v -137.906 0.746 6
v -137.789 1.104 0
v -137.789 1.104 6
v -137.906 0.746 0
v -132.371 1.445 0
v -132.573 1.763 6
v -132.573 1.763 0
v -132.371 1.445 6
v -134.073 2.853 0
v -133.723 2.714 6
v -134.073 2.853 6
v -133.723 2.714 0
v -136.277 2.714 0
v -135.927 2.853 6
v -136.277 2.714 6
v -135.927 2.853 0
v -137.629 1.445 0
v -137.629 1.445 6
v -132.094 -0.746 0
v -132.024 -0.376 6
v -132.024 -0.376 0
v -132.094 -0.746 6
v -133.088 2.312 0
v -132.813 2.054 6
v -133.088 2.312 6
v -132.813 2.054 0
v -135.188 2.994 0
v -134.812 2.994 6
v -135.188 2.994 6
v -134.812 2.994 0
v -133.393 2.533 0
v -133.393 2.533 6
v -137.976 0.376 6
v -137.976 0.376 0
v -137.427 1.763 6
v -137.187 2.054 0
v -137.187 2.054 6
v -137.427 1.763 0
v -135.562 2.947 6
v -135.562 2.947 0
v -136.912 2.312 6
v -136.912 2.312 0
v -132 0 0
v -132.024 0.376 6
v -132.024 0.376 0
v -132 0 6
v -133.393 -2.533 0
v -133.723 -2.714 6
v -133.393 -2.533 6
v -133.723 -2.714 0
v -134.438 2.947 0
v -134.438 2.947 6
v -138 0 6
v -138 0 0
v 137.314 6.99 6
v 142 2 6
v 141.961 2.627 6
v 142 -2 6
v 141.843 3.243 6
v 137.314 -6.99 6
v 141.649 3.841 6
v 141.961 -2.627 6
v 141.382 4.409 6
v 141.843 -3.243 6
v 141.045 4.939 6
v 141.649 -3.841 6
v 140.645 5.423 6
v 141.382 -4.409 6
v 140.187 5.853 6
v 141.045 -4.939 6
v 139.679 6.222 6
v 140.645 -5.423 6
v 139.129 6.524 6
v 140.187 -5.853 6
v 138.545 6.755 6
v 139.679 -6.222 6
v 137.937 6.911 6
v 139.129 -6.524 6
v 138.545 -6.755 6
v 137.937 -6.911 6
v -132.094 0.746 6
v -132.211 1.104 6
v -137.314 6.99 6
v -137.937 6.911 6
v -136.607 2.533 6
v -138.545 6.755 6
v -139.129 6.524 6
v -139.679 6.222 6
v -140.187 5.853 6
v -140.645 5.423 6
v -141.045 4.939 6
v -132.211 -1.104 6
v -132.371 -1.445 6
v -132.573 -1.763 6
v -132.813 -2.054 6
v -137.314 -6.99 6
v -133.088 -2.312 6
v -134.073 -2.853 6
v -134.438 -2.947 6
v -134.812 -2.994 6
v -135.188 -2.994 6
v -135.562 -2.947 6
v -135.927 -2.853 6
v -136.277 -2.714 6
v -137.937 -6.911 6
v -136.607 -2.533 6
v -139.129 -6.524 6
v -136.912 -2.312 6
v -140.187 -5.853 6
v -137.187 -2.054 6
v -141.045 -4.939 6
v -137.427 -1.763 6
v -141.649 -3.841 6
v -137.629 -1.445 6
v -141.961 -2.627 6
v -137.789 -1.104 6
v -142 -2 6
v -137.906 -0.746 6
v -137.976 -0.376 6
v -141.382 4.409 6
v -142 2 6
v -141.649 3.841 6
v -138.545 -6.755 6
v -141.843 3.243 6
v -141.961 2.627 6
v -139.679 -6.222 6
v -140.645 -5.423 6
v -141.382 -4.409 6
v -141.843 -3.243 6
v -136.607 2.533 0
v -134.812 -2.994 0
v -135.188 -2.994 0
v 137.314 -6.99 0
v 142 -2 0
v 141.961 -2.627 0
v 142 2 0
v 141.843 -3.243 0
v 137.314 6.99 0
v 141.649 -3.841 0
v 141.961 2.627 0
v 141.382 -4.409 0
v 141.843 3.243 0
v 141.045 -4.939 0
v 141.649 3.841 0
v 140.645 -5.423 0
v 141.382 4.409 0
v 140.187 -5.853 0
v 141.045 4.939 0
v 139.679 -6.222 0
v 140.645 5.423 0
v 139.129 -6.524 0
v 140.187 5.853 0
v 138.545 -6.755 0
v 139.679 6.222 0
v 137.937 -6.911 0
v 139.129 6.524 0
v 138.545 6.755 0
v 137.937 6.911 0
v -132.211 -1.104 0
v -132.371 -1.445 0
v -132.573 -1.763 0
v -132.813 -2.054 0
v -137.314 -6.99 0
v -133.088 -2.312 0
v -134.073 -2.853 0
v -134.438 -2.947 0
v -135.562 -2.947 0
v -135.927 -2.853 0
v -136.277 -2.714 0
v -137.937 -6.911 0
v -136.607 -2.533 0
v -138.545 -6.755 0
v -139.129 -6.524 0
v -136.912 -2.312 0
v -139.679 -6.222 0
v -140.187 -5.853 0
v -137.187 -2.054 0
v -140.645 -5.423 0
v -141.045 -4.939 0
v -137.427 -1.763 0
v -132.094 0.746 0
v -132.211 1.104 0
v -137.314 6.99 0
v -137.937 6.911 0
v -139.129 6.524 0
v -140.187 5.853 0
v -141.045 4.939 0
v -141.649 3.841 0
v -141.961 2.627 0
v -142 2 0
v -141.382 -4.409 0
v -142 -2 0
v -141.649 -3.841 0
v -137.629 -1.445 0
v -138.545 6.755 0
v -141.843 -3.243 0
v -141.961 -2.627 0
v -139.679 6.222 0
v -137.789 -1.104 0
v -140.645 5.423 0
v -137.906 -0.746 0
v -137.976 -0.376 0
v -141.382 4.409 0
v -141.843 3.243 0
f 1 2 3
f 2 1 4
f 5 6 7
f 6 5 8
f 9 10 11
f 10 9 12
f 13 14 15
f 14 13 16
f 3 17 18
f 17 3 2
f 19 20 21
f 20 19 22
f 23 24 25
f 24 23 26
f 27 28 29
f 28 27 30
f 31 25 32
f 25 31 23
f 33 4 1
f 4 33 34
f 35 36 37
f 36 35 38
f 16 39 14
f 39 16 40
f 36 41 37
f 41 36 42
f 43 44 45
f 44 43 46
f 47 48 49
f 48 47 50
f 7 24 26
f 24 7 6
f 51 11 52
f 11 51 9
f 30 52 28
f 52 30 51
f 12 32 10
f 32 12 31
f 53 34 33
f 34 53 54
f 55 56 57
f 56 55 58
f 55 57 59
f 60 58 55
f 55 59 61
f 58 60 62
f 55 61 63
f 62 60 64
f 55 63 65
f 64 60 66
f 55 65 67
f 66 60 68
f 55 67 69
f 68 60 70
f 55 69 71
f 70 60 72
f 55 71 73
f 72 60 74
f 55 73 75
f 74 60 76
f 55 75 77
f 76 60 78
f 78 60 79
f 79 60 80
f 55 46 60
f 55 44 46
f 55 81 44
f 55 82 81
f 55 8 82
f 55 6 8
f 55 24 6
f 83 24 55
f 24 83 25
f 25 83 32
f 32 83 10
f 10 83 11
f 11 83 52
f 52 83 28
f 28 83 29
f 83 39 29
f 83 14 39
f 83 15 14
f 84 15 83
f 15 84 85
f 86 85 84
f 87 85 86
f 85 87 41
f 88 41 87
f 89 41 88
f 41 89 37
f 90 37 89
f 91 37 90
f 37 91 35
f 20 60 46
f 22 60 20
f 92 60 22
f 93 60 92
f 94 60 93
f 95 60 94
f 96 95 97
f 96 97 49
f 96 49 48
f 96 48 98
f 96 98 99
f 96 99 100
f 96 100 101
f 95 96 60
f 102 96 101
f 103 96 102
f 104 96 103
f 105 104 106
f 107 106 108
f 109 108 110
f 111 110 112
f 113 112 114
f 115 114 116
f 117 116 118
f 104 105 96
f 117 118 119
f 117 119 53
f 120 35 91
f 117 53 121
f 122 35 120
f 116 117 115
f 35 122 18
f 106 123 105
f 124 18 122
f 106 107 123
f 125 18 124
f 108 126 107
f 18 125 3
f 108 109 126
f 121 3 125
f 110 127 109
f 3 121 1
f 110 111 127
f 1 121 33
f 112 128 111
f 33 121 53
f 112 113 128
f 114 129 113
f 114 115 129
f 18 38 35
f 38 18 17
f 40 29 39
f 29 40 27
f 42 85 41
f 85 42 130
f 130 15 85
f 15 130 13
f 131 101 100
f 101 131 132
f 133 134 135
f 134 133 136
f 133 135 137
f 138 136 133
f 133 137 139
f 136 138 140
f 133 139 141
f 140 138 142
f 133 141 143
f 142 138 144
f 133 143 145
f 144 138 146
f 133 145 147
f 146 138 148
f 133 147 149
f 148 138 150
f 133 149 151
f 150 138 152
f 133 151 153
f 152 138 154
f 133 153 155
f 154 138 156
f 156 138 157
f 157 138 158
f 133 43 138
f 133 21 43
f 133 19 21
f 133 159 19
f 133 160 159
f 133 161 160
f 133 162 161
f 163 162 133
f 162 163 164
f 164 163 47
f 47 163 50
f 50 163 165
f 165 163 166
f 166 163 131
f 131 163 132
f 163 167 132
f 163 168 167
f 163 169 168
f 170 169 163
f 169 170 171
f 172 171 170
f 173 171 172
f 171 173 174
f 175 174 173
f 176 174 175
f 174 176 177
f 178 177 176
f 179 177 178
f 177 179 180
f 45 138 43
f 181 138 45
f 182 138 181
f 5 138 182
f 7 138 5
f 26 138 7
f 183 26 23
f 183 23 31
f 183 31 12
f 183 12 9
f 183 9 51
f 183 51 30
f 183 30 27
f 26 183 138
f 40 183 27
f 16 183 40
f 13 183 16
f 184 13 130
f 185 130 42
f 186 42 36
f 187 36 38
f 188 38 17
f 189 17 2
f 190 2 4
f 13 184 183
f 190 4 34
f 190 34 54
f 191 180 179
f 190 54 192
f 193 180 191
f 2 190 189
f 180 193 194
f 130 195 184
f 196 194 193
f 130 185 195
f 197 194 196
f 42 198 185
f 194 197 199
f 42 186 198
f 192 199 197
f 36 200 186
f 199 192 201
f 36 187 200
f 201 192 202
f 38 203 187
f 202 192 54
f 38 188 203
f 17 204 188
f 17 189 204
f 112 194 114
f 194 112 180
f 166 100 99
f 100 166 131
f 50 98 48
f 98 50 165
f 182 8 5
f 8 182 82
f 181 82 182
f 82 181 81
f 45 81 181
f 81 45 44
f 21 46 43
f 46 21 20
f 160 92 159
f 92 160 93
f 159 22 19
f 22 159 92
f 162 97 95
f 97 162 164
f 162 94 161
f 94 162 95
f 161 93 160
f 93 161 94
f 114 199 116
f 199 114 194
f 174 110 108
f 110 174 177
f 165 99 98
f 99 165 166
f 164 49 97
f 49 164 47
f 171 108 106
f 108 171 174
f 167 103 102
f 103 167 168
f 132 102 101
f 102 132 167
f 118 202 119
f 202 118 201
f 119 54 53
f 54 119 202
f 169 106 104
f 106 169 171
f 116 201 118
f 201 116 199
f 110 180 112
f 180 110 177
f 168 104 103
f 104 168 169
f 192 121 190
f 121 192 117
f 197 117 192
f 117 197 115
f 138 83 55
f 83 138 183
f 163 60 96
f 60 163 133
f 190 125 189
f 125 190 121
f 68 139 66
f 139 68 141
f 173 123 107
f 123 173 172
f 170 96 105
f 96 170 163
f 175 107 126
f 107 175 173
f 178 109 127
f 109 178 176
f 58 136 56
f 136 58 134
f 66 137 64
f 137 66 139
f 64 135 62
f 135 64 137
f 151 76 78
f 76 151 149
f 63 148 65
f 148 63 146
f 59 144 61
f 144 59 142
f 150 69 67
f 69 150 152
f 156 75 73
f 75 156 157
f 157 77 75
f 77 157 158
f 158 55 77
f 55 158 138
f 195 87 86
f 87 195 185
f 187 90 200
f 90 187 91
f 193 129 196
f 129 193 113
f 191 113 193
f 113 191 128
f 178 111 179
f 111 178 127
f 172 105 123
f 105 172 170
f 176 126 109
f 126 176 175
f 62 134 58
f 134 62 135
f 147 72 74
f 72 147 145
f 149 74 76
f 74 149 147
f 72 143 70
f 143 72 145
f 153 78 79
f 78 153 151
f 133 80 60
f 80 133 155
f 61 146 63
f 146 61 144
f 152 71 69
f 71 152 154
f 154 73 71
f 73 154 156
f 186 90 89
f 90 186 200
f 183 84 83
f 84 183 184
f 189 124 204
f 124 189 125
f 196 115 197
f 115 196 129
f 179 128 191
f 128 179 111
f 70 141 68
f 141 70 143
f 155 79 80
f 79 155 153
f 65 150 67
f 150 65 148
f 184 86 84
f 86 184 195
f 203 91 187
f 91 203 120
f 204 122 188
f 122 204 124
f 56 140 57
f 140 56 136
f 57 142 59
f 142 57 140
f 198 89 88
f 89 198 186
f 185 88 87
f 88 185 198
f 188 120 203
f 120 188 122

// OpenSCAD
$fn = 50;


difference() {
	union() {
		hull() {
			translate(v = [-137.0000000000, 2.0000000000, 0]) {
				cylinder(h = 6, r = 5);
			}
			translate(v = [137.0000000000, 2.0000000000, 0]) {
				cylinder(h = 6, r = 5);
			}
			translate(v = [-137.0000000000, -2.0000000000, 0]) {
				cylinder(h = 6, r = 5);
			}
			translate(v = [137.0000000000, -2.0000000000, 0]) {
				cylinder(h = 6, r = 5);
			}
		}
	}
	union() {
		translate(v = [-135.0000000000, 0.0000000000, 0]) {
			cylinder(h = 6, r = 3.0000000000);
		}
		translate(v = [-135.0000000000, 0.0000000000, 0]) {
			cylinder(h = 6, r = 1.5000000000);
		}
		translate(v = [-135.0000000000, 0.0000000000, 0]) {
			cylinder(h = 6, r = 1.5000000000);
		}
		translate(v = [-135.0000000000, 0.0000000000, 0]) {
			cylinder(h = 6, r = 1.5000000000);
		}
	}
}
